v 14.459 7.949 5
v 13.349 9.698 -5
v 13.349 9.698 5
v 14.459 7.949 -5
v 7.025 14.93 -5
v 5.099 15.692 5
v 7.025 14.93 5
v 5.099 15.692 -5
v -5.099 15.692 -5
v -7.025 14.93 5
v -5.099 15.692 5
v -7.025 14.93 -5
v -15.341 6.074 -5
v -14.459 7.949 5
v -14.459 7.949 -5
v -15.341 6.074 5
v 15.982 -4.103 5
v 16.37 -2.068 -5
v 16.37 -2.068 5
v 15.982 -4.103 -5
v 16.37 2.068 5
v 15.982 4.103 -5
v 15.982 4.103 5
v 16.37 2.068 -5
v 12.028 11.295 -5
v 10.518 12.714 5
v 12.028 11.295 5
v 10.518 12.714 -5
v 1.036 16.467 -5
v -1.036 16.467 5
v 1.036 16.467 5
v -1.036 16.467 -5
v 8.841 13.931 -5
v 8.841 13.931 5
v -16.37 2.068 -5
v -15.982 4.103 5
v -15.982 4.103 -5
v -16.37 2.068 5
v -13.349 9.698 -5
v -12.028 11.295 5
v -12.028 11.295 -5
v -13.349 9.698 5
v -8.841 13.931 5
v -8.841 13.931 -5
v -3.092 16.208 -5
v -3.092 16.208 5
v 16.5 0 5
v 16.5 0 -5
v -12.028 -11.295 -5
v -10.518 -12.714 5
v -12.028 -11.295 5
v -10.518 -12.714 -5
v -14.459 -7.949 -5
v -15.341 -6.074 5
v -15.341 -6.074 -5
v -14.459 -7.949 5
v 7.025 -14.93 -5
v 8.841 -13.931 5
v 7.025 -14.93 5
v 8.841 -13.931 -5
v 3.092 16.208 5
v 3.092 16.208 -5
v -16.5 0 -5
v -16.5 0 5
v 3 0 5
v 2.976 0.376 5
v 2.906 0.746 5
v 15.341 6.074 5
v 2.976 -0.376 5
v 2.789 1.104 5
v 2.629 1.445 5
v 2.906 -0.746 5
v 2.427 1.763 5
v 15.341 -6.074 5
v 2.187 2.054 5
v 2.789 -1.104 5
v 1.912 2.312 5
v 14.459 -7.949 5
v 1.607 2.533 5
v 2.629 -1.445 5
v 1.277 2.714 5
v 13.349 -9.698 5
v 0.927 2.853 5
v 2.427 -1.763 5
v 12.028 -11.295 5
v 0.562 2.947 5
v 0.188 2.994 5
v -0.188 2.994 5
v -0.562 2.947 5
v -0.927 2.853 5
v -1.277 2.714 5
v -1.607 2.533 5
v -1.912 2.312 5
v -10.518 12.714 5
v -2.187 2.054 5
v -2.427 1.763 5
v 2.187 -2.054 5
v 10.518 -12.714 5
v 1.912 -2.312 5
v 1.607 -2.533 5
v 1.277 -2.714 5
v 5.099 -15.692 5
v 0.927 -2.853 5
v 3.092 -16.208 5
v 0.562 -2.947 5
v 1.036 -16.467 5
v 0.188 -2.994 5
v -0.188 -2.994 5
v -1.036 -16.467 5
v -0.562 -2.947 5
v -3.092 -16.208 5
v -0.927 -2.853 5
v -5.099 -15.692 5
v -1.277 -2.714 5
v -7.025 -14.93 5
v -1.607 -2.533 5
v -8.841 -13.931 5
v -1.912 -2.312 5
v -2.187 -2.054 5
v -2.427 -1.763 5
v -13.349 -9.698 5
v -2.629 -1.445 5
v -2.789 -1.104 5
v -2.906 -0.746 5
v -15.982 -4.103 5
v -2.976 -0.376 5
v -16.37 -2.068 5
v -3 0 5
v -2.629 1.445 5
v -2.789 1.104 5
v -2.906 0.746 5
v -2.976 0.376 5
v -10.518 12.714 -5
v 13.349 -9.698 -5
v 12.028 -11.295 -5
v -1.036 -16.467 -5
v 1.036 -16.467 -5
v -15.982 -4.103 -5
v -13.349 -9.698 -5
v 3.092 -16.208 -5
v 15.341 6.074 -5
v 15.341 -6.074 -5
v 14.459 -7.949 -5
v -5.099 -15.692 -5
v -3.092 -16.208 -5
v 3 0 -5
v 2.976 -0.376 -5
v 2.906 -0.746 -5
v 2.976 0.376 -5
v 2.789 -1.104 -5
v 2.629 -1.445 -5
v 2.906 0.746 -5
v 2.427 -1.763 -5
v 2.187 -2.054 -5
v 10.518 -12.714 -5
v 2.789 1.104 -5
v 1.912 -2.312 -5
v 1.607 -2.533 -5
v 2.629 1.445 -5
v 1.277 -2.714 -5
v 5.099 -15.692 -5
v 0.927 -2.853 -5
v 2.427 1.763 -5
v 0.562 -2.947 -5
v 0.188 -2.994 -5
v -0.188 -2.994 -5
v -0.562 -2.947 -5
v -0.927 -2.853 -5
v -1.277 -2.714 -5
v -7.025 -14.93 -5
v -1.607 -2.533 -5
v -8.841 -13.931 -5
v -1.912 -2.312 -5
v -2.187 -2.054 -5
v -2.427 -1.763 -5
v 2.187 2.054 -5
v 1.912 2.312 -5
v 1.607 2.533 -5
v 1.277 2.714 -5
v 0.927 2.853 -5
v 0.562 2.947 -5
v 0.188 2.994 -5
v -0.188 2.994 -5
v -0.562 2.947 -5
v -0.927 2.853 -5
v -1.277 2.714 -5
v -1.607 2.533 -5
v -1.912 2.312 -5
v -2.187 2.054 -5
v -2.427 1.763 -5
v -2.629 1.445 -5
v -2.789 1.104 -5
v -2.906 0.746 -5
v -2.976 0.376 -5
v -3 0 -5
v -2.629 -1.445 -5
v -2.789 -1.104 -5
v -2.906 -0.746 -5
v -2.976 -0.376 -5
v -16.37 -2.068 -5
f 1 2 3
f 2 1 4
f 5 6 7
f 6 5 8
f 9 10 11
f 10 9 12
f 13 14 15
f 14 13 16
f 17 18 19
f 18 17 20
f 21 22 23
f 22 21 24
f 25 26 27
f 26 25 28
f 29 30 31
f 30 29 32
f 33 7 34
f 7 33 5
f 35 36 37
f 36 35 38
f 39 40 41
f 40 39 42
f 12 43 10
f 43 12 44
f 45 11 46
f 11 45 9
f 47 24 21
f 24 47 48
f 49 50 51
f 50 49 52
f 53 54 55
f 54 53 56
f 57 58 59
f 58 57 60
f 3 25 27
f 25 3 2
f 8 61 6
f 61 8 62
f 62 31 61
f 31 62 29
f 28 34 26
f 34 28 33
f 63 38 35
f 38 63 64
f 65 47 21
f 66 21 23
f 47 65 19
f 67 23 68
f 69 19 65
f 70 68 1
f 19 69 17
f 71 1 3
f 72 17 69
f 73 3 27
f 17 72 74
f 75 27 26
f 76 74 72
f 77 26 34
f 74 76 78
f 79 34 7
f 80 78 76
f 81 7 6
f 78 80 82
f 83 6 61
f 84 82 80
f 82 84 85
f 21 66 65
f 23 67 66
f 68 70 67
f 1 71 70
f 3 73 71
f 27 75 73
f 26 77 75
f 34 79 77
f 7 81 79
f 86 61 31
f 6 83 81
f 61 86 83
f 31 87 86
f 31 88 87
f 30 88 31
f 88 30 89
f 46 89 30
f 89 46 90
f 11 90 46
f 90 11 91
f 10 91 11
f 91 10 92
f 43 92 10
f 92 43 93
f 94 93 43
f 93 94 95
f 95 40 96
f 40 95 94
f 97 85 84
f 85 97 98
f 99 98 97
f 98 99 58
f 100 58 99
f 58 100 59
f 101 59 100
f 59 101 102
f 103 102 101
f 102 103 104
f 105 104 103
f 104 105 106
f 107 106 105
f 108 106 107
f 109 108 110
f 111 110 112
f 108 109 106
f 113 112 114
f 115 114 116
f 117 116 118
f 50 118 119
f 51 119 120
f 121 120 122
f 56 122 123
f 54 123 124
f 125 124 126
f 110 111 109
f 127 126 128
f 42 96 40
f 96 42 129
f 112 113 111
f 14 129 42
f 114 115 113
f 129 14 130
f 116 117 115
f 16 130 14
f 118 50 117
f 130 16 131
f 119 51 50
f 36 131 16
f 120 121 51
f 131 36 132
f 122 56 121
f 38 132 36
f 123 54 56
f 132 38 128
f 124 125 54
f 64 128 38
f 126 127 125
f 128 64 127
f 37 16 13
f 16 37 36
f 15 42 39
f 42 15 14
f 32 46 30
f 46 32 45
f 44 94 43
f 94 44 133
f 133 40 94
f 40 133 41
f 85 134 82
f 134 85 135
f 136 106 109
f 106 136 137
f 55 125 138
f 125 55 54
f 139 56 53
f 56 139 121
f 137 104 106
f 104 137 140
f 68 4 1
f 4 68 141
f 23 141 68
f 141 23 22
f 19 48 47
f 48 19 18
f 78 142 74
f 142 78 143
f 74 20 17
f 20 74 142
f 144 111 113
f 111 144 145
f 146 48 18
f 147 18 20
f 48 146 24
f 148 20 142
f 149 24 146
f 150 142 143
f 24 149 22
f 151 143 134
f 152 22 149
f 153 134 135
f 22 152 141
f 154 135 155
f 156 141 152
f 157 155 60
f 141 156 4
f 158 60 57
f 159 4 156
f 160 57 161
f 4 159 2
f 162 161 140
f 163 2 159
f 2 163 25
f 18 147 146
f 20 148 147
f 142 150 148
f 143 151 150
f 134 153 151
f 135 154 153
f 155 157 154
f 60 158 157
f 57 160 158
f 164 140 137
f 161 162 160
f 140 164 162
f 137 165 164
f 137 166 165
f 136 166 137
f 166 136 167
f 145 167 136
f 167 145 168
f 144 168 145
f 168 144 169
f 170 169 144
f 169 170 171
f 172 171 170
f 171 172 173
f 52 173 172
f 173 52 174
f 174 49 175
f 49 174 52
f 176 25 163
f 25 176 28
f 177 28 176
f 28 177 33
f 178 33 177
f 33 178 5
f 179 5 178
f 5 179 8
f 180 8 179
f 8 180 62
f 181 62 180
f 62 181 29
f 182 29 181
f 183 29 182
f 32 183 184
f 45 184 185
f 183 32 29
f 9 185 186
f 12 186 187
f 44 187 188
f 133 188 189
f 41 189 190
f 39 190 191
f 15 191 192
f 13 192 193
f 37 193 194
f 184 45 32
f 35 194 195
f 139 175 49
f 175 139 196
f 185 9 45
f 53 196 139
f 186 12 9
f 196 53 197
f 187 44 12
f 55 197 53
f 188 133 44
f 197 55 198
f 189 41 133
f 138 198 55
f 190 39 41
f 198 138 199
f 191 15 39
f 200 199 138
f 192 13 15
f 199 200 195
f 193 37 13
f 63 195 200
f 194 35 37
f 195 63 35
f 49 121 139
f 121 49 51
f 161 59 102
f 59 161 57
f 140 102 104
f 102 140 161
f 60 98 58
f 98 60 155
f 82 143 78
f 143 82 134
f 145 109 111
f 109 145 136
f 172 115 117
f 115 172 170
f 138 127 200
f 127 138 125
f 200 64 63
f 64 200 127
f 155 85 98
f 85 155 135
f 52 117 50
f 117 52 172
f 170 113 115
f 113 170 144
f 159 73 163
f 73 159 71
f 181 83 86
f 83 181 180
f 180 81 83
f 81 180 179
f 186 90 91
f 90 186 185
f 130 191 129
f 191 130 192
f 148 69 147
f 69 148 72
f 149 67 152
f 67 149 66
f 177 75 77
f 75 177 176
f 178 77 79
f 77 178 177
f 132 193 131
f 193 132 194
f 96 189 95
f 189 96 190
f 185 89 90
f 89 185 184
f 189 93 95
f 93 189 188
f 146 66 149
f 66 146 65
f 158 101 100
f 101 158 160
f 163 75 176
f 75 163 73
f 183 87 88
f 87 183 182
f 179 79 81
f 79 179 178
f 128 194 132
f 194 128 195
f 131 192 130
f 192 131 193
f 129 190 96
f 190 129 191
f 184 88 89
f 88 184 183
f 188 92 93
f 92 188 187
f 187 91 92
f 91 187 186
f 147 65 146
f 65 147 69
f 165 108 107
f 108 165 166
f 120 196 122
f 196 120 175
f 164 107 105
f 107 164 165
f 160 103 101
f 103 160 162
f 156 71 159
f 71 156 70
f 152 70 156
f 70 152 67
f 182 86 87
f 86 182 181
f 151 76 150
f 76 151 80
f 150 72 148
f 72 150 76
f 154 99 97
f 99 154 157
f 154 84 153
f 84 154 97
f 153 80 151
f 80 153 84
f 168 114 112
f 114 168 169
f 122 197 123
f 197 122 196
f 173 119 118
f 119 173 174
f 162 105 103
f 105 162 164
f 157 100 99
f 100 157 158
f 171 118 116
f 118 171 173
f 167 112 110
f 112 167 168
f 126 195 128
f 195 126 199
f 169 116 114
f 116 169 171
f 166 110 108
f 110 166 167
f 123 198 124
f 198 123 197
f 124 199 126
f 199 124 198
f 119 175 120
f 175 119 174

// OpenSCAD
$fn = 50;


difference() {
	union() {
		translate(v = [0, 0, -5.0000000000]) {
			cylinder(h = 10, r = 16.5000000000);
		}
	}
	union() {
		translate(v = [0, 0, -100.0000000000]) {
			cylinder(h = 200, r = 3);
		}
	}
}
